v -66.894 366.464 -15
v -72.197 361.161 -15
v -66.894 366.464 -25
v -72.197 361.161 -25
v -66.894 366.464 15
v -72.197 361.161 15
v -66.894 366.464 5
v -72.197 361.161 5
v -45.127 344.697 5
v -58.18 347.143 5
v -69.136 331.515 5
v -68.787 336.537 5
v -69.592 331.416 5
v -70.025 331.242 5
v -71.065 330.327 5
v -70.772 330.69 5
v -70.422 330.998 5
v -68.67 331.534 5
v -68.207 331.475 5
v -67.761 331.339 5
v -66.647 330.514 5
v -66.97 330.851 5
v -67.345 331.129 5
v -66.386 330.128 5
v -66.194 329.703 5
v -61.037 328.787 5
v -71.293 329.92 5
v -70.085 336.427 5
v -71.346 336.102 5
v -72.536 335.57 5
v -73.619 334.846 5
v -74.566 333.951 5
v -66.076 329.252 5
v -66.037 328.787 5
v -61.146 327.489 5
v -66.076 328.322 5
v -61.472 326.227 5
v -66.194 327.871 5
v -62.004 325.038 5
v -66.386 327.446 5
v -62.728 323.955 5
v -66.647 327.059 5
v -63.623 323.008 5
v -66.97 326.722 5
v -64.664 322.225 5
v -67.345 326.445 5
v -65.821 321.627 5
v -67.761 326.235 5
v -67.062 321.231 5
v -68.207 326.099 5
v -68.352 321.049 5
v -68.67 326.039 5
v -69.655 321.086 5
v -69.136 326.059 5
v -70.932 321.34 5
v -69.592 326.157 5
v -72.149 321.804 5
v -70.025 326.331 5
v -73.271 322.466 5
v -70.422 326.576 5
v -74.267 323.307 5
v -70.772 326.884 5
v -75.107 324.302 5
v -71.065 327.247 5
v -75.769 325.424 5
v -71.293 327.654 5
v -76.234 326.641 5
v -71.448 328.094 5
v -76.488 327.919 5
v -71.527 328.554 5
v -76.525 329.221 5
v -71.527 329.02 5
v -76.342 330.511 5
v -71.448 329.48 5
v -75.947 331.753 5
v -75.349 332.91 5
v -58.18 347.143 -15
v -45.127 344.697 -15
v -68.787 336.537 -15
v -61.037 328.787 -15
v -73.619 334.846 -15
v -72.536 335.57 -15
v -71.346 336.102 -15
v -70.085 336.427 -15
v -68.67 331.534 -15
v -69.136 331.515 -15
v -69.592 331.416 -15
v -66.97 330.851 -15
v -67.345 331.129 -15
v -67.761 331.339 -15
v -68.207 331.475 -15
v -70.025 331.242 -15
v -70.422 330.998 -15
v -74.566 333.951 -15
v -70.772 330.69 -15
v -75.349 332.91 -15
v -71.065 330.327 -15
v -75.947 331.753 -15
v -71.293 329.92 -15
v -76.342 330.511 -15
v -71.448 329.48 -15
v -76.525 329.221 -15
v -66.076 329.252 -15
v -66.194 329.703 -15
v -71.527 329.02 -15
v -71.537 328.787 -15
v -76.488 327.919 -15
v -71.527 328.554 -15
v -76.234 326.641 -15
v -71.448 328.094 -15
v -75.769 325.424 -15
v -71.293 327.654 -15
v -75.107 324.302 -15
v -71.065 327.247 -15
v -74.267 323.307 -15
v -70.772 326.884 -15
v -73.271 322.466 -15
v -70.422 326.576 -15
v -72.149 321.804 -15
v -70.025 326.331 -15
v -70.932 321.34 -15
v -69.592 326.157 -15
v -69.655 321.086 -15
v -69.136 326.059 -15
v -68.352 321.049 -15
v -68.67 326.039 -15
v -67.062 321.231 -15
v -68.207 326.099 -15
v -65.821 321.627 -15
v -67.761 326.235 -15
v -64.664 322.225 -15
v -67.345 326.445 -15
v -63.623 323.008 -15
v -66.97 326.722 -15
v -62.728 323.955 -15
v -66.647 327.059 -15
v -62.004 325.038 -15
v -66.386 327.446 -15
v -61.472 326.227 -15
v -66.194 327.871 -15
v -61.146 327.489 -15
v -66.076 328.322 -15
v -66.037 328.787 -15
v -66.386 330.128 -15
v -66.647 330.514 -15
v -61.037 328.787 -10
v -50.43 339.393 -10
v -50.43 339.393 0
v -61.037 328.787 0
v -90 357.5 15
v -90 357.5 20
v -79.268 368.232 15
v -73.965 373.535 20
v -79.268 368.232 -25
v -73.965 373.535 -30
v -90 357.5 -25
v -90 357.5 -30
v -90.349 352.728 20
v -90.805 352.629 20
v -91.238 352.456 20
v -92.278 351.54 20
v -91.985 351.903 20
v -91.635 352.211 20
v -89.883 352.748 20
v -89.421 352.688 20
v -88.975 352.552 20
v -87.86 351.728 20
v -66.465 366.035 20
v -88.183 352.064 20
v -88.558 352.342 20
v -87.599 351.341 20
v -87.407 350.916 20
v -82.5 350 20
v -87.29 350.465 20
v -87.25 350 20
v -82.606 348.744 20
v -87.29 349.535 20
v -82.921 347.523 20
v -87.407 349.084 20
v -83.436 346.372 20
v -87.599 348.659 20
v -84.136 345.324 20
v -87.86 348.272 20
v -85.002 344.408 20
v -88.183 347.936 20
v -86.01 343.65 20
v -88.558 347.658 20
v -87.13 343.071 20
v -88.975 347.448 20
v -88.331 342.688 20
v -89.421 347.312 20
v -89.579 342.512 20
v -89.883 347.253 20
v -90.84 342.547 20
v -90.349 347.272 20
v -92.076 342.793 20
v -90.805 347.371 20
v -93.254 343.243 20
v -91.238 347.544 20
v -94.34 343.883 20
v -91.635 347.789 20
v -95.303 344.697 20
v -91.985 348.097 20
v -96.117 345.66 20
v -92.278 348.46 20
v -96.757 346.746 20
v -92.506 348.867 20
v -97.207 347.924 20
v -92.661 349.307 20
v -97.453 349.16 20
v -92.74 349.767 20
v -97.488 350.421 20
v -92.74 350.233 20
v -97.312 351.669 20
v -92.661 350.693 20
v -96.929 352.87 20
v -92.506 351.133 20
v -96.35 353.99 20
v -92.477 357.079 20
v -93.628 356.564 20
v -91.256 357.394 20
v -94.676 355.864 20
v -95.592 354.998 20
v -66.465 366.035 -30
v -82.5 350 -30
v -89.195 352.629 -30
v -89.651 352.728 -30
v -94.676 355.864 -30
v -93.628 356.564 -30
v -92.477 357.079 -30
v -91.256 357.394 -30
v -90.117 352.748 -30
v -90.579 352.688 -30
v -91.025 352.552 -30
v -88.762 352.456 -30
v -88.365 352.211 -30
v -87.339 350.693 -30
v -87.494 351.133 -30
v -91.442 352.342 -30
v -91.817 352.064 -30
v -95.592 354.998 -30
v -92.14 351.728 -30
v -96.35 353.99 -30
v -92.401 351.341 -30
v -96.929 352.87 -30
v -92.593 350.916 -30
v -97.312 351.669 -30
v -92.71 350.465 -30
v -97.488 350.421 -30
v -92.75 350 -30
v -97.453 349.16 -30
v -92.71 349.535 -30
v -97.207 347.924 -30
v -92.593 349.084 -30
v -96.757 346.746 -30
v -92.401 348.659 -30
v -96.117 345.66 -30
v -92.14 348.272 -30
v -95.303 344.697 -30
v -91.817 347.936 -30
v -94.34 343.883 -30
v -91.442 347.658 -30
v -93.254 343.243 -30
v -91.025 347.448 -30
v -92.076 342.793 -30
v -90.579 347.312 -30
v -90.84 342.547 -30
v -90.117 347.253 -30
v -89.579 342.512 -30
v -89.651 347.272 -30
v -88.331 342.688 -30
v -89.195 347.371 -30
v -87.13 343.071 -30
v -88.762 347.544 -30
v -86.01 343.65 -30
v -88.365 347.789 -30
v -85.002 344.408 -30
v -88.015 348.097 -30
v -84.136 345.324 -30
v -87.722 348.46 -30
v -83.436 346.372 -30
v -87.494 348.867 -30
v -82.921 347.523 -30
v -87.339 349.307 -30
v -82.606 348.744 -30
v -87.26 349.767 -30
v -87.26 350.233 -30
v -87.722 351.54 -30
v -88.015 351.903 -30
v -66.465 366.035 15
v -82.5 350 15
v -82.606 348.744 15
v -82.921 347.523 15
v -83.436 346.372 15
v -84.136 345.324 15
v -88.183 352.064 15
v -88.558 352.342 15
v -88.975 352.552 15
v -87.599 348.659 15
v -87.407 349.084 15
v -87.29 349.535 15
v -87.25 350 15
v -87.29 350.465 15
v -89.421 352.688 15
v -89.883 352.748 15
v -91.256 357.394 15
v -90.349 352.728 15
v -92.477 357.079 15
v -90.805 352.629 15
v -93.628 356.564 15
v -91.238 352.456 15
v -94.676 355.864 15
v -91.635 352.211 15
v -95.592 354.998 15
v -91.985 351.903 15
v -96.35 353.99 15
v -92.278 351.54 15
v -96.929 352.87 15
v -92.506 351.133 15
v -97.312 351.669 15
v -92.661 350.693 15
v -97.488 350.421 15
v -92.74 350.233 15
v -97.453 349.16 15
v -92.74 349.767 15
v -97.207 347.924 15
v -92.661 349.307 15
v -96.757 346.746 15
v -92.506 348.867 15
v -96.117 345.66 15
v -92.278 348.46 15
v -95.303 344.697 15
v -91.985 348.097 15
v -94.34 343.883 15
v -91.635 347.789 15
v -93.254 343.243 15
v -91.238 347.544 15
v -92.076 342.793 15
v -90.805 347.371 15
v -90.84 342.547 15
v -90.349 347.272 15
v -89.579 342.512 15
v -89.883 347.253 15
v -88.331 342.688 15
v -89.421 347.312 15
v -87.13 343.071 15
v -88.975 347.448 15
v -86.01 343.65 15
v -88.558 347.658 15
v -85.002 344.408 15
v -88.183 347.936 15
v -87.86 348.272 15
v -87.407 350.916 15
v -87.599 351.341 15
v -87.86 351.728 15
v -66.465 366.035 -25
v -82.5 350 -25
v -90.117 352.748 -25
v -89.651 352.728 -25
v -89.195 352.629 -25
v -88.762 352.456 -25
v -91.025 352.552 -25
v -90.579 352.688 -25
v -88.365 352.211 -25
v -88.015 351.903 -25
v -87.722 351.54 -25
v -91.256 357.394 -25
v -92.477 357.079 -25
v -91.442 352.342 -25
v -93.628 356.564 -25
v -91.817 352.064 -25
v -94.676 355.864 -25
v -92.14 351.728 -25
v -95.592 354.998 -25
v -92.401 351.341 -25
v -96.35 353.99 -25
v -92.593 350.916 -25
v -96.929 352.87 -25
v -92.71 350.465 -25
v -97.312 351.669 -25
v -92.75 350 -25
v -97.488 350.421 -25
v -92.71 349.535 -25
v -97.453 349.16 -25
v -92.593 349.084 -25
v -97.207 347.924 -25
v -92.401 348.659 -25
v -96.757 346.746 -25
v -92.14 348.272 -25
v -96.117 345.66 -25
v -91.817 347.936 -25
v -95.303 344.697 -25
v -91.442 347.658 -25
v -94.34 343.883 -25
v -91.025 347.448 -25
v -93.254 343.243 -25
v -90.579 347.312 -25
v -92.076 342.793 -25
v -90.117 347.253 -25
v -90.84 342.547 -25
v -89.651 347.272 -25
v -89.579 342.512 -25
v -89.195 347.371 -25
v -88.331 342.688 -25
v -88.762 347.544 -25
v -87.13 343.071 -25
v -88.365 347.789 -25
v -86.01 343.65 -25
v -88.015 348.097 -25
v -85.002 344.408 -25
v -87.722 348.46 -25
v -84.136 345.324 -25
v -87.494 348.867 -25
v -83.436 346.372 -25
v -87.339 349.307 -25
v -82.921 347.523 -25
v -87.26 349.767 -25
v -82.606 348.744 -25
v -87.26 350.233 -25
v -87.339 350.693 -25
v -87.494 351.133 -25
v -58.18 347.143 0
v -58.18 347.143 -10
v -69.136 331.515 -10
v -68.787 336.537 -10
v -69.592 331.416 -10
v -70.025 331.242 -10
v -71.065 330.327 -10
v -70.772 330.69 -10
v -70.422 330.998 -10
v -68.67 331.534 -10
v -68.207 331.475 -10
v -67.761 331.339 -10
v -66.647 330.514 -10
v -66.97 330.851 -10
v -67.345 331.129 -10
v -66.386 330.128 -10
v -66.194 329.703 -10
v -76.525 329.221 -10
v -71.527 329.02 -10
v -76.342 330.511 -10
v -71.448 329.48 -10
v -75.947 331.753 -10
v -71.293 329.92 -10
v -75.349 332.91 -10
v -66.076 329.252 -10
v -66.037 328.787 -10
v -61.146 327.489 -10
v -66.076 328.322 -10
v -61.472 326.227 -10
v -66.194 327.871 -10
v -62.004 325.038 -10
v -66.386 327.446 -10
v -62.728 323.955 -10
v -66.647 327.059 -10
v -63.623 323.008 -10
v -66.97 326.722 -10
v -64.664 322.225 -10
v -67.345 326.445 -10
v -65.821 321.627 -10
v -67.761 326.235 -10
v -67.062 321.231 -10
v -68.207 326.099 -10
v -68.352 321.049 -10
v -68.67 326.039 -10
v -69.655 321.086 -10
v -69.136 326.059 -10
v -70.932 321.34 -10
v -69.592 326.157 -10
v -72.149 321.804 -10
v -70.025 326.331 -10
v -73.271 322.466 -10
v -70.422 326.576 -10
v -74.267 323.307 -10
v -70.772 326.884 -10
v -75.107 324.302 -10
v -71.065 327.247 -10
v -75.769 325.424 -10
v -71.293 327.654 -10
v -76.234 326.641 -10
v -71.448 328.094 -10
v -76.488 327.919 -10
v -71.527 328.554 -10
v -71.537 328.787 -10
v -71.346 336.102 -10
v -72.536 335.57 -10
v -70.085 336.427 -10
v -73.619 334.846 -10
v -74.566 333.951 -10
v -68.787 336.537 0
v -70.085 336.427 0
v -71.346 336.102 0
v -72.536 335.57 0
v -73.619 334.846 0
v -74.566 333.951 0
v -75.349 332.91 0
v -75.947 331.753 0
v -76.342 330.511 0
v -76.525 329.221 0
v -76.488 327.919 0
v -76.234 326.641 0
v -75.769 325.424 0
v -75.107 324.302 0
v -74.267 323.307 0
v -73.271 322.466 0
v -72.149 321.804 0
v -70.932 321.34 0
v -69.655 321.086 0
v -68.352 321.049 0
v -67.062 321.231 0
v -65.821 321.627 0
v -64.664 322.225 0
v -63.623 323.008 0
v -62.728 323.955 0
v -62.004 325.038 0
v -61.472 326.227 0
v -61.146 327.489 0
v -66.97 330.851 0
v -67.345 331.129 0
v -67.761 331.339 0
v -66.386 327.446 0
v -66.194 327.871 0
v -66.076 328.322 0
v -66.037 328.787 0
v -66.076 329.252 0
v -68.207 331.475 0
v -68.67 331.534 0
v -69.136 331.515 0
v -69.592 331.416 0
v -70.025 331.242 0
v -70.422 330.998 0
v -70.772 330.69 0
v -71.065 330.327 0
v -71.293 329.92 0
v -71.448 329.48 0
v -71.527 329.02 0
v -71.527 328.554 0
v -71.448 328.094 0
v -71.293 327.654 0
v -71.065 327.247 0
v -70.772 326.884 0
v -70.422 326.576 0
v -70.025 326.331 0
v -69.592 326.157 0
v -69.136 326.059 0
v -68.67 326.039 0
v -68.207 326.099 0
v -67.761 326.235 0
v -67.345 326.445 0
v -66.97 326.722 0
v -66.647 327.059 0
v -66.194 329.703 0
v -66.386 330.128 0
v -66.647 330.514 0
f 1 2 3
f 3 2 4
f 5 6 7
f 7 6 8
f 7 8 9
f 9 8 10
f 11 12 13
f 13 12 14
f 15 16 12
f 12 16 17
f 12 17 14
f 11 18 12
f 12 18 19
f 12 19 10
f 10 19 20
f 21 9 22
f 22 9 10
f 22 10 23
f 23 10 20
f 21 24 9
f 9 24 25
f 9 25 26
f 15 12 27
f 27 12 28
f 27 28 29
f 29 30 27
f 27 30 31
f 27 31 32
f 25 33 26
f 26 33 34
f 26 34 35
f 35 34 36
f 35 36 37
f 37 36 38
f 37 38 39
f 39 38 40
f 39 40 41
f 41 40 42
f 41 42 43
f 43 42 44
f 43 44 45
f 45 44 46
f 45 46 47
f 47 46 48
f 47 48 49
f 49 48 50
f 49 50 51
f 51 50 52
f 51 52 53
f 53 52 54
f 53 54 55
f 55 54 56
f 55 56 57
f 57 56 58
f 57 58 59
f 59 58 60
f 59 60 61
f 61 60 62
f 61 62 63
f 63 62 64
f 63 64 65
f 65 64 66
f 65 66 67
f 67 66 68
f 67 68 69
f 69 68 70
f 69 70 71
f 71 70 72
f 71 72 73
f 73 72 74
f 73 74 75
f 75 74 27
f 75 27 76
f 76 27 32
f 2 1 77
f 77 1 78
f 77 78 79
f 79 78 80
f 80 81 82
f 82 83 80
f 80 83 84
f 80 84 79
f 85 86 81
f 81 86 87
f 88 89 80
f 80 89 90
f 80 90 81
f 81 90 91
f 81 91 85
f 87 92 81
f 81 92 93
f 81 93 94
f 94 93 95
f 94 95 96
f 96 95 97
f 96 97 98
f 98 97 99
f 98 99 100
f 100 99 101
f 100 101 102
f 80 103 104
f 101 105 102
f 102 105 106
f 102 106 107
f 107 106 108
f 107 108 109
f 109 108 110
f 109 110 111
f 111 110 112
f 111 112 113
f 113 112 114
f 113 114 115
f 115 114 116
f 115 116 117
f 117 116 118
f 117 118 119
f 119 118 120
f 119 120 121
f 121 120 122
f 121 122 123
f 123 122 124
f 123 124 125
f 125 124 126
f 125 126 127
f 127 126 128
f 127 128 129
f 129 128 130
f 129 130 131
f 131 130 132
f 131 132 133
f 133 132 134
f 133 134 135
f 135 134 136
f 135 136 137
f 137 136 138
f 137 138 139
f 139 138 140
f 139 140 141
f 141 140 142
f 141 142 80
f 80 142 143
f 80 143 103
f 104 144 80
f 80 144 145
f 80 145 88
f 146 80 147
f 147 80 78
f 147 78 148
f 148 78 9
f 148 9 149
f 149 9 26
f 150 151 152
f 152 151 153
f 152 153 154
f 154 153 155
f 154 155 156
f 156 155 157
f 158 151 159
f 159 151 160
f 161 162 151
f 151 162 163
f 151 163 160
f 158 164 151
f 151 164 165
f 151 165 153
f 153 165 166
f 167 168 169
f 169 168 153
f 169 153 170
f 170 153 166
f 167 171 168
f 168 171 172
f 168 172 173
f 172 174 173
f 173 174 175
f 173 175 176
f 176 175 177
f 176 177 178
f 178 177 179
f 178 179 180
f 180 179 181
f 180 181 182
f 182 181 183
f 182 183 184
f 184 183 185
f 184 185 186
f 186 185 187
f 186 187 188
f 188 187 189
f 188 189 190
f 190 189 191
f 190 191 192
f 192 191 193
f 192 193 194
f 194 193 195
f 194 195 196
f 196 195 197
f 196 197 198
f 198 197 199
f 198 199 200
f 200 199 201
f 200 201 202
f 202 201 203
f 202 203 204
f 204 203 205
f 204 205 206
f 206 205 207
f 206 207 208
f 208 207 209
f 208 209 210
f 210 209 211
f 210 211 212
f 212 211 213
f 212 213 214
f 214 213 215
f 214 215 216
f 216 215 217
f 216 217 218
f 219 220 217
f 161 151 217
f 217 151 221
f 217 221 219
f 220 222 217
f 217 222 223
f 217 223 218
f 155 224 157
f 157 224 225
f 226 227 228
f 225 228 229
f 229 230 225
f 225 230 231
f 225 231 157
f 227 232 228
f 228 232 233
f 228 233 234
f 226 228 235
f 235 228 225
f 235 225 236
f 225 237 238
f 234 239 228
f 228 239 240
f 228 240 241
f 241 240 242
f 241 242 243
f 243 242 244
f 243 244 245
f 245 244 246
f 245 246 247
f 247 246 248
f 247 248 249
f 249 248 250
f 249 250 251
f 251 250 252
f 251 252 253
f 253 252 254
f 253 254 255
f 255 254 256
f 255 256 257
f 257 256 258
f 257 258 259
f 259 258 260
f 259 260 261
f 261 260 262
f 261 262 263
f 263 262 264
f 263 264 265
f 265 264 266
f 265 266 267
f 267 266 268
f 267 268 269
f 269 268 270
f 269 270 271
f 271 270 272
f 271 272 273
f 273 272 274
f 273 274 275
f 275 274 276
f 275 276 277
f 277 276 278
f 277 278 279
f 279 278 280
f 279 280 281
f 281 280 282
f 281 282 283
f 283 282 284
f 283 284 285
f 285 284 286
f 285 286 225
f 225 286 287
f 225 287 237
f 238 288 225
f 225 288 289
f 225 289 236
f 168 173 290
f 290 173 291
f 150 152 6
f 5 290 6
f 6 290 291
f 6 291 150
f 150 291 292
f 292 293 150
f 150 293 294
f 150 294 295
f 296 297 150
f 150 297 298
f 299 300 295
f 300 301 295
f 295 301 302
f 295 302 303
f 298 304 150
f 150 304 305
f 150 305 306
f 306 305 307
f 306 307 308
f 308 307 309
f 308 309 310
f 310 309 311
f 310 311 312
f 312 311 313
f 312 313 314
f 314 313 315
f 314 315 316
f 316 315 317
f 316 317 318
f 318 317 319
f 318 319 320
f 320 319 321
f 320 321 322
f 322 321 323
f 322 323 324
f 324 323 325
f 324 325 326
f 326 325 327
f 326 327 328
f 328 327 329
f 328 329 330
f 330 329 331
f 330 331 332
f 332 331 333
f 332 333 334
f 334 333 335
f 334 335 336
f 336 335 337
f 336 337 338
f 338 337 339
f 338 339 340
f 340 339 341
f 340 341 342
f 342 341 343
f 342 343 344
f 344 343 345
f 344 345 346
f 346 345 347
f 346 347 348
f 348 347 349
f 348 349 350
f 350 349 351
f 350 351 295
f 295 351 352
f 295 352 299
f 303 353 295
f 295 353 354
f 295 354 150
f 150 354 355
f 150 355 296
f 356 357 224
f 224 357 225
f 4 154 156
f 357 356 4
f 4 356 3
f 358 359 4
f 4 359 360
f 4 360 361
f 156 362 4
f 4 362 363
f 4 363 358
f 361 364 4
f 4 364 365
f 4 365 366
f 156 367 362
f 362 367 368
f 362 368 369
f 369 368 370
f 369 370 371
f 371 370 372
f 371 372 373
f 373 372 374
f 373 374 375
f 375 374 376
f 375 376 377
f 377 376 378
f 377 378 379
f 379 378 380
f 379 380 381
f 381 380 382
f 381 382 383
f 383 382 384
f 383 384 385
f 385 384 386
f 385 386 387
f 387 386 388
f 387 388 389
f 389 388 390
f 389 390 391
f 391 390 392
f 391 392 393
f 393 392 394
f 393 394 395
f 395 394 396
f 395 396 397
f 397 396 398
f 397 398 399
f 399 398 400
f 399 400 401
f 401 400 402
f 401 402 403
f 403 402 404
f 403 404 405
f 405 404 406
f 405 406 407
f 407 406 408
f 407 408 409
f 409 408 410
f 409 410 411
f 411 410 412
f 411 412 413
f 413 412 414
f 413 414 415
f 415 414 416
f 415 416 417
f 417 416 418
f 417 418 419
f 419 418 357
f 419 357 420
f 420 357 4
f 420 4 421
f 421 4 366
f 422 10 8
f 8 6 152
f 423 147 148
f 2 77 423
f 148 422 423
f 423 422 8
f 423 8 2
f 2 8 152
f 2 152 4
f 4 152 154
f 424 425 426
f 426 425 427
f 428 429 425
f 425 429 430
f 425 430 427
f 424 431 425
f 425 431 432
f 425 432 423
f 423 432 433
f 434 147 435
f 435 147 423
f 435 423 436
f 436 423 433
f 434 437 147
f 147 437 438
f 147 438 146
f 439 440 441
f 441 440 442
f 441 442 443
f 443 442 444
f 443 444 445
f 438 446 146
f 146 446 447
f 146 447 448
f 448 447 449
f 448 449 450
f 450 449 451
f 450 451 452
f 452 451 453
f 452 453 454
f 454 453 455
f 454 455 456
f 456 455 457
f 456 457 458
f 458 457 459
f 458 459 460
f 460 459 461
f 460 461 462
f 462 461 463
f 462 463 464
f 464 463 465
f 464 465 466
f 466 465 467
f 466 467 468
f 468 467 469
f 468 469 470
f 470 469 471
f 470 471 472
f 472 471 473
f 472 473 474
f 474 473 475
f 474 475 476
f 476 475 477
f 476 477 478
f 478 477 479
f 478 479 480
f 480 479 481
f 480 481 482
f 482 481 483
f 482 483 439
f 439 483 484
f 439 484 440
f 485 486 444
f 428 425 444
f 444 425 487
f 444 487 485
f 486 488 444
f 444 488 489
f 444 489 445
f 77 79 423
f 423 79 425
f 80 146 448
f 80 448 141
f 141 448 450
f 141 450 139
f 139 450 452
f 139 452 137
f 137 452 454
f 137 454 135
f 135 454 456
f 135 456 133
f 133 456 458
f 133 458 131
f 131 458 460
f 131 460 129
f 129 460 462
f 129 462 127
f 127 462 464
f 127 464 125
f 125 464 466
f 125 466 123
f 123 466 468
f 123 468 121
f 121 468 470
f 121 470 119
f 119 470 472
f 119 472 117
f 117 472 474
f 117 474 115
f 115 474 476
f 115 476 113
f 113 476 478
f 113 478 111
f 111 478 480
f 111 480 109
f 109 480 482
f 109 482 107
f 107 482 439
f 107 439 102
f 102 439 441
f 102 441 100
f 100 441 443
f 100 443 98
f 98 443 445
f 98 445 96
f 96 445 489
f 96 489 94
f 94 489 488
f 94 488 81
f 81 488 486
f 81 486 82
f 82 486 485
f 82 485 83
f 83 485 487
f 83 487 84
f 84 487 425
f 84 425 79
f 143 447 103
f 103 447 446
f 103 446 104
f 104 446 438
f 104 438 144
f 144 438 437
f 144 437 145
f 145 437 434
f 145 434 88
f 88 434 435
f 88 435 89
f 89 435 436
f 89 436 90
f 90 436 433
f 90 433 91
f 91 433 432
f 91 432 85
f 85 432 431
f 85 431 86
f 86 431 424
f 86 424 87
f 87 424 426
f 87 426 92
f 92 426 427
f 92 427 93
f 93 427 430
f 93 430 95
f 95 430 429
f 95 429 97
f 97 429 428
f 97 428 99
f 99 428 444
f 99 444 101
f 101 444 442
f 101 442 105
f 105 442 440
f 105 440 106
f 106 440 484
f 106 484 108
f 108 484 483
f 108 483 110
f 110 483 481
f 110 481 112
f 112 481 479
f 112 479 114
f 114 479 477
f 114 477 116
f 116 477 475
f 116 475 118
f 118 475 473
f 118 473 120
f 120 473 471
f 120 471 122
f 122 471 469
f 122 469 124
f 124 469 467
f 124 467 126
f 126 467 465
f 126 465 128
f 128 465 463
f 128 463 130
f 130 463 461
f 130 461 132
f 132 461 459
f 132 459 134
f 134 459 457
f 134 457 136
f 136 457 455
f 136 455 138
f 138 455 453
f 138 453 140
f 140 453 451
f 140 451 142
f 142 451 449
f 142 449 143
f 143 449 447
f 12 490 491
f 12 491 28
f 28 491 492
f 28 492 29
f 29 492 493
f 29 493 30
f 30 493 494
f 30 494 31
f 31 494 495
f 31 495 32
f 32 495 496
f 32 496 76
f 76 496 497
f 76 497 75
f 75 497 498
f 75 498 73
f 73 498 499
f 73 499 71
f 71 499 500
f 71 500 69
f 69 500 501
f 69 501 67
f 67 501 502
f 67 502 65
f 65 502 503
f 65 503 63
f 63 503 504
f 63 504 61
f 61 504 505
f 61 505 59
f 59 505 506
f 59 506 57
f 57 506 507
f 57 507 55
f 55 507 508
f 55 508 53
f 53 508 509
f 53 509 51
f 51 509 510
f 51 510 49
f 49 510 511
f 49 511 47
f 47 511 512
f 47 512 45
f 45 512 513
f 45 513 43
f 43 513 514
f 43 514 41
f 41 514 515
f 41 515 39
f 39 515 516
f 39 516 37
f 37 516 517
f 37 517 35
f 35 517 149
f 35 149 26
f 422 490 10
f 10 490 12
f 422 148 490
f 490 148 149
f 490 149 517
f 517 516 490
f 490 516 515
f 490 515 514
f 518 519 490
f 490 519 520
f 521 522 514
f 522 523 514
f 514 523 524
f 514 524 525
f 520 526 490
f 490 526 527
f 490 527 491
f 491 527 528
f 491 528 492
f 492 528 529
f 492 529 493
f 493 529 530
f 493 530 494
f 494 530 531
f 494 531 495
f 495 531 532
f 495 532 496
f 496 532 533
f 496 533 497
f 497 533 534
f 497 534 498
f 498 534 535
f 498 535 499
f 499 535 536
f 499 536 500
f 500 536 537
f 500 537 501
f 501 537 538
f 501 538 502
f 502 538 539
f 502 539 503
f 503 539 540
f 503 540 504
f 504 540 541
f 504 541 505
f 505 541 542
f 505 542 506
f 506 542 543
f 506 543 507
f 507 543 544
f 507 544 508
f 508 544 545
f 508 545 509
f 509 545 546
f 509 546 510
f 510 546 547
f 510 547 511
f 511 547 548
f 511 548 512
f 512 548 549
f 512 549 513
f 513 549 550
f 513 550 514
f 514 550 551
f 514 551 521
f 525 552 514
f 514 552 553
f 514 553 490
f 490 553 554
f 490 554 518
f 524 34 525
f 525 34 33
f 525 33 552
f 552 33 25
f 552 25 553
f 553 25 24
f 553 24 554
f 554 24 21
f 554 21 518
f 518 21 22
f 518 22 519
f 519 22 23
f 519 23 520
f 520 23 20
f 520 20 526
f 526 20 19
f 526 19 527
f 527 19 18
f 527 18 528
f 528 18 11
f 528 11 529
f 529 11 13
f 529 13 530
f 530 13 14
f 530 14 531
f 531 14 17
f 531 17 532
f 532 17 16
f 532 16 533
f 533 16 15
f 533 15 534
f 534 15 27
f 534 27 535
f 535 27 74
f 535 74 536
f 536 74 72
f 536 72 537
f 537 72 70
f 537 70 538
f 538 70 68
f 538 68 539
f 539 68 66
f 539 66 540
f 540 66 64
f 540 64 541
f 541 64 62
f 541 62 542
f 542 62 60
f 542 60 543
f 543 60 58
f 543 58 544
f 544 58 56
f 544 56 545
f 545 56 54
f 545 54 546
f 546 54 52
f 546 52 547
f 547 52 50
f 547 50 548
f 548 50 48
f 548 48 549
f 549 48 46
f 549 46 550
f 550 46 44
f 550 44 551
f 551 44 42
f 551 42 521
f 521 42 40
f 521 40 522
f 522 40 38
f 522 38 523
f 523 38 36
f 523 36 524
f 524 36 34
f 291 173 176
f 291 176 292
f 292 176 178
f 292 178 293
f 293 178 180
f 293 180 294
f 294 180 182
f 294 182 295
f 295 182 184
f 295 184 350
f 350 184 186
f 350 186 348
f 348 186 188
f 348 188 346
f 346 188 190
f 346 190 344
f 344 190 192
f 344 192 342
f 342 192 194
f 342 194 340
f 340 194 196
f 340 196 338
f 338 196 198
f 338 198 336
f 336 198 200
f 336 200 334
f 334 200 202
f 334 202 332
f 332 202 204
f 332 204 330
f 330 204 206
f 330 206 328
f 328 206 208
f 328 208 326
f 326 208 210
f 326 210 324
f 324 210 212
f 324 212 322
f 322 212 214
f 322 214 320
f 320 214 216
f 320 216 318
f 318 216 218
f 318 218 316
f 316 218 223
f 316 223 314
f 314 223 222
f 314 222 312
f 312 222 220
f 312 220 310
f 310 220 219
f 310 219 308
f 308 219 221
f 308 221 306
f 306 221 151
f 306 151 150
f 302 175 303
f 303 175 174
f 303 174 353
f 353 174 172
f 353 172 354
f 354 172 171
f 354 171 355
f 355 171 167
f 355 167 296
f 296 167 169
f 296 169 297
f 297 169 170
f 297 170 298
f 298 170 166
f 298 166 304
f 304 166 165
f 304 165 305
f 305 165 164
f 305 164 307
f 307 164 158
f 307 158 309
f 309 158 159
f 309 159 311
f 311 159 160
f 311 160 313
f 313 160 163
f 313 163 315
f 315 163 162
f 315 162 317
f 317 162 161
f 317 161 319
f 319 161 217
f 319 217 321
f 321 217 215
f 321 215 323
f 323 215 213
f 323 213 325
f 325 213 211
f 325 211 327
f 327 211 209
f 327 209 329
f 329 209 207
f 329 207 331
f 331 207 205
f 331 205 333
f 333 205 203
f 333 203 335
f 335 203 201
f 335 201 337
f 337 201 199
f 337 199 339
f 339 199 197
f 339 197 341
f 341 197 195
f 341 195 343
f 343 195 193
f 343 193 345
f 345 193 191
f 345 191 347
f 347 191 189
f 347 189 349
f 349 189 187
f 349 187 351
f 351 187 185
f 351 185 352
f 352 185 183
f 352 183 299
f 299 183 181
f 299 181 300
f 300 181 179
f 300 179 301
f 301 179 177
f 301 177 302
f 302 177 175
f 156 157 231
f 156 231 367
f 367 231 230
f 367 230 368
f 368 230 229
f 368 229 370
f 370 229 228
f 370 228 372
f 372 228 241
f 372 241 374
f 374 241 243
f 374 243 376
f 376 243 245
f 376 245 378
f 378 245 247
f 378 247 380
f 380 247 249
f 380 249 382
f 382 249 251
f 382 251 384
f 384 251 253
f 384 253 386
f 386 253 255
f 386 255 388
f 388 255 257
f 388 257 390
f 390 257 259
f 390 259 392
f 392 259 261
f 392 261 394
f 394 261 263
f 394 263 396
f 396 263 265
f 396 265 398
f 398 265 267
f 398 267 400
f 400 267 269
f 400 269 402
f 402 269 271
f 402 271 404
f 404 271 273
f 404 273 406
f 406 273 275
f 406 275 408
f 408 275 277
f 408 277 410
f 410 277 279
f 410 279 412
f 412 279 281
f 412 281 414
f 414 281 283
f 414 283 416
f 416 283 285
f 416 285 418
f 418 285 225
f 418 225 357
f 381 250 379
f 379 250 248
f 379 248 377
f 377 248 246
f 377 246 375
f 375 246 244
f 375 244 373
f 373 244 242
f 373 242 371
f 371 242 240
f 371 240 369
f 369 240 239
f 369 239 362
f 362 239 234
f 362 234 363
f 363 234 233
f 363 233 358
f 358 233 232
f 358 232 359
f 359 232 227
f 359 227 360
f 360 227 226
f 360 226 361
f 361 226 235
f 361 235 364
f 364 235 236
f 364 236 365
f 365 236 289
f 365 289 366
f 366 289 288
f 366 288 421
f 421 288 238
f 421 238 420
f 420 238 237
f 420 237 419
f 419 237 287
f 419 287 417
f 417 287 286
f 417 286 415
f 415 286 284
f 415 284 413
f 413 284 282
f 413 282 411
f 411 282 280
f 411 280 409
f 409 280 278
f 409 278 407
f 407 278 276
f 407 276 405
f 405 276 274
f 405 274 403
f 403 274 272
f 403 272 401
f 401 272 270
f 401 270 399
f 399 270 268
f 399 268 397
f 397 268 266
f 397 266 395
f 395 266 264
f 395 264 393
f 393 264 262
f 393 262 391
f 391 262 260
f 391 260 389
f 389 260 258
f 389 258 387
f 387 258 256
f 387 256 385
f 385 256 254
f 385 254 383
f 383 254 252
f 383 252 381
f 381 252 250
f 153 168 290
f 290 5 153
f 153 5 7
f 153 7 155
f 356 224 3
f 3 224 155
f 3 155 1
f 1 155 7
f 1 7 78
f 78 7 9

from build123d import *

# Parameters (mm, degrees)
SKETCH1_R            = 7.75
SKETCH1_R_2          = 2.75
BOSS_EXTRUDE1_DEPTH  = 5
SKETCH2_R            = 7.75
SKETCH2_R_2          = 2.75
BOSS_EXTRUDE2_DEPTH  = 5
SKETCH3_R            = 7.5
SKETCH3_R_2          = 2.75
BOSS_EXTRUDE4_DEPTH  = 5
BOSS_EXTRUDE5_DEPTH  = 5
SKETCH6_W            = 20
SKETCH6_H            = 40.783378413
BOSS_EXTRUDE6_DEPTH  = 10
SKETCH7_R            = 2.75
CUT_EXTRUDE1_DEPTH   = 10
SKETCH9_R            = 2.75
CUT_EXTRUDE2_DEPTH   = 389.276117932
BOSS_EXTRUDE7_DEPTH  = 15
BOSS_EXTRUDE8_DEPTH  = 15
SKETCH12_R           = 7.5
SKETCH12_R_2         = 2.75
BOSS_EXTRUDE9_DEPTH  = 5
BOSS_EXTRUDE10_START = -5
SKETCH13_R           = 2.75
BOSS_EXTRUDE10_DEPTH = 5
CUT_EXTRUDE3_DEPTH   = 5
BOSS_EXTRUDE11_DEPTH = 2.5


with BuildPart() as part:
    # Sketch1 → Boss-Extrude1 (new body)
    with BuildSketch(Plane.XY):
        with Locations((-68.786796564, 328.786796564)):
            Circle(SKETCH1_R)
        with Locations((-68.786796564, 328.786796564)):
            Circle(SKETCH1_R_2, mode=Mode.SUBTRACT)
    extrude(amount=BOSS_EXTRUDE1_DEPTH)

    # Sketch4 → Boss-Extrude5 (add)
    with BuildSketch(Plane.XY):
        with BuildLine():
            Line((-61.036796564, 328.786796564), (-43.359127035, 346.464466094))
            Line((-43.359127035, 346.464466094), (-72.19733047, 375.30266953))
            Line((-72.19733047, 375.30266953), (-90, 357.5))
            ThreePointArc((-90, 357.5), (-95.303300859, 344.696699141), (-82.5, 350))
            Line((-82.5, 350), (-69.647077939, 362.852922061))
            Line((-69.647077939, 362.852922061), (-56.058874503, 349.264718626))
            Line((-56.058874503, 349.264718626), (-68.786796564, 336.536796564))
            ThreePointArc((-68.786796564, 336.536796564), (-74.266874119, 323.30671901), (-61.036796564, 328.786796564))
        make_face()
    extrude(amount=BOSS_EXTRUDE5_DEPTH)



with BuildPart() as body_2:
    # Sketch2 → Boss-Extrude2 (new body)
    with BuildSketch(Plane(origin=(0, 0, -10), x_dir=(-1, 0, 0), z_dir=(0, 0, -1))):
        with Locations((68.786796564, 328.786796564)):
            Circle(SKETCH2_R)
        with Locations((68.786796564, 328.786796564)):
            Circle(SKETCH2_R_2, mode=Mode.SUBTRACT)
    extrude(amount=BOSS_EXTRUDE2_DEPTH)

    # Sketch3 → Boss-Extrude4 (add)
    # profile 1 of 2: a face of its own
    with BuildSketch(Plane(origin=(0, 0, -15), x_dir=(-1, 0, 0), z_dir=(0, 0, -1))):
        with Locations((90, 350)):
            Circle(SKETCH3_R)
        with Locations((90, 350)):
            Circle(SKETCH3_R_2, mode=Mode.SUBTRACT)
    # profile 2 of 2: a face of its own
    with BuildSketch(Plane(origin=(0, 0, -15), x_dir=(-1, 0, 0), z_dir=(0, 0, -1))):
        with BuildLine():
            Line((43.359127035, 346.464466094), (61.036796564, 328.786796564))
            ThreePointArc((61.036796564, 328.786796564), (63.30671901, 334.266874119), (68.786796564, 336.536796564))
            Line((68.786796564, 336.536796564), (56.058874503, 349.264718626))
            Line((56.058874503, 349.264718626), (69.647077939, 362.852922061))
            Line((69.647077939, 362.852922061), (82.5, 350))
            ThreePointArc((82.5, 350), (84.696699141, 355.303300859), (90, 357.5))
            Line((90, 357.5), (72.19733047, 375.30266953))
            Line((72.19733047, 375.30266953), (43.359127035, 346.464466094))
        make_face()
    extrude(amount=-BOSS_EXTRUDE4_DEPTH)


with BuildPart() as part_1:
    add(part.part)

    add(body_2.part)  # Boss-Extrude6 merges body 2
    # Sketch6 → Boss-Extrude6 (add)
    with BuildSketch(Plane(origin=(151.55266953, 151.55266953, 0), x_dir=(0, 0, -1), z_dir=(0.7071067811865483, 0.7071067811865468, 0))):
        with Locations((5, 296.038595375)):
            Rectangle(SKETCH6_W, SKETCH6_H)
    extrude(amount=-BOSS_EXTRUDE6_DEPTH)

    # Sketch7 → Cut-Extrude1 (cut)
    with BuildSketch(Plane.XY.offset(5)):
        with Locations(Location((-68.786796564, 328.786796564, 0), (0, 0, 180))):
            Circle(SKETCH7_R)
        with Locations(Location((-90, 350, 0), (0, 0, 180))):
            Circle(SKETCH7_R)
    extrude(amount=-CUT_EXTRUDE1_DEPTH, mode=Mode.SUBTRACT)

    # Sketch9 → Cut-Extrude2 (cut, through all)
    with BuildSketch(Plane.XY.offset(5)):
        with BuildLine():
            Line((-82.5, 350), (-71.768398282, 360.731601718))
            Line((-71.768398282, 360.731601718), (-79.268398282, 368.231601718))
            Line((-79.268398282, 368.231601718), (-90, 357.5))
            ThreePointArc((-90, 357.5), (-95.303300859, 344.696699141), (-82.5, 350))
        make_face()
        with Locations((-90, 350)):
            Circle(SKETCH9_R, mode=Mode.SUBTRACT)
    extrude(amount=-CUT_EXTRUDE2_DEPTH, mode=Mode.SUBTRACT)

    # Sketch10 → Boss-Extrude7 (add)
    with BuildSketch(Plane.XY.offset(5)):
        Polygon((-72.19733047, 361.160533906), (-65.126262658, 368.231601718), (-72.19733047, 375.30266953), (-79.268398282, 368.231601718), align=None)
    extrude(amount=BOSS_EXTRUDE7_DEPTH)

    # Sketch11 → Boss-Extrude8 (add)
    with BuildSketch(Plane(origin=(0, 0, -15), x_dir=(-1, 0, 0), z_dir=(0, 0, -1))):
        Polygon((65.126262658, 368.231601718), (72.19733047, 361.160533906), (79.268398282, 368.231601718), (72.19733047, 375.30266953), align=None)
    extrude(amount=BOSS_EXTRUDE8_DEPTH)

    # Sketch12 → Boss-Extrude9 (add)
    # profile 1 of 3: a face of its own
    with BuildSketch(Plane.XY.offset(20)):
        with BuildLine():
            Line((-82.5, 350), (-71.768398282, 360.731601718))
            Line((-71.768398282, 360.731601718), (-72.19733047, 361.160533906))
            Line((-72.19733047, 361.160533906), (-79.268398282, 368.231601718))
            Line((-79.268398282, 368.231601718), (-90, 357.5))
            ThreePointArc((-90, 357.5), (-84.696699141, 355.303300859), (-82.5, 350))
        make_face()
    # profile 2 of 3: a face of its own
    with BuildSketch(Plane.XY.offset(20)):
        with Locations((-90, 350)):
            Circle(SKETCH12_R)
        with Locations((-90, 350)):
            Circle(SKETCH12_R_2, mode=Mode.SUBTRACT)
    # profile 3 of 3: a face of its own
    with BuildSketch(Plane.XY.offset(20)):
        Polygon((-72.19733047, 361.160533906), (-71.768398282, 360.731601718), (-64.69733047, 367.80266953), (-65.126262658, 368.231601718), align=None)
    extrude(amount=-BOSS_EXTRUDE9_DEPTH)

    # Sketch13 → Boss-Extrude10 (add)
    with BuildSketch(Plane(origin=(0, 0, -30), x_dir=(-1, 0, 0), z_dir=(0, 0, -1)).offset(BOSS_EXTRUDE10_START)):
        with BuildLine():
            Line((90, 357.5), (79.268398282, 368.231601718))
            Line((79.268398282, 368.231601718), (72.19733047, 361.160533906))
            Line((72.19733047, 361.160533906), (65.126262658, 368.231601718))
            Line((65.126262658, 368.231601718), (64.69733047, 367.80266953))
            Line((64.69733047, 367.80266953), (82.5, 350))
            ThreePointArc((82.5, 350), (95.303300859, 344.696699141), (90, 357.5))
        make_face()
        with Locations(Location((90, 350, 0), (0, 0, 180))):
            Circle(SKETCH13_R, mode=Mode.SUBTRACT)
    extrude(amount=BOSS_EXTRUDE10_DEPTH)

    # Sketch14 → Cut-Extrude3 (cut)
    with BuildSketch(Plane(origin=(151.55266953, 151.55266953, 0), x_dir=(0, 0, -1), z_dir=(0.7071067811865476, 0.7071067811865476, 0))):
        Polygon((-5, 275.646906168), (15, 275.646906168), (15, 306.430284581), (25, 306.430284581), (25, 305.823682863), (30, 305.823682863), (30, 316.430284581), (-20, 316.430284581), (-20, 305.823682863), (-15, 305.823682863), (-15, 306.430284581), (-5, 306.430284581), align=None)
    extrude(amount=-CUT_EXTRUDE3_DEPTH, mode=Mode.SUBTRACT)

    # Sketch15 → Boss-Extrude11 (add)
    with BuildSketch(Plane(origin=(148.017135624, 148.017135624, 0), x_dir=(0, 0, -1), z_dir=(0.7071067811865477, 0.7071067811865475, 0))):
        Polygon((-5, 306.430284581), (-5, 275.646906168), (15, 275.646906168), (15, 306.430284581), (25, 306.430284581), (25, 305.823682863), (30, 305.823682863), (30, 316.430284581), (-20, 316.430284581), (-20, 305.823682863), (-15, 305.823682863), (-15, 306.430284581), align=None)
    extrude(amount=BOSS_EXTRUDE11_DEPTH)


solid = part_1.part
